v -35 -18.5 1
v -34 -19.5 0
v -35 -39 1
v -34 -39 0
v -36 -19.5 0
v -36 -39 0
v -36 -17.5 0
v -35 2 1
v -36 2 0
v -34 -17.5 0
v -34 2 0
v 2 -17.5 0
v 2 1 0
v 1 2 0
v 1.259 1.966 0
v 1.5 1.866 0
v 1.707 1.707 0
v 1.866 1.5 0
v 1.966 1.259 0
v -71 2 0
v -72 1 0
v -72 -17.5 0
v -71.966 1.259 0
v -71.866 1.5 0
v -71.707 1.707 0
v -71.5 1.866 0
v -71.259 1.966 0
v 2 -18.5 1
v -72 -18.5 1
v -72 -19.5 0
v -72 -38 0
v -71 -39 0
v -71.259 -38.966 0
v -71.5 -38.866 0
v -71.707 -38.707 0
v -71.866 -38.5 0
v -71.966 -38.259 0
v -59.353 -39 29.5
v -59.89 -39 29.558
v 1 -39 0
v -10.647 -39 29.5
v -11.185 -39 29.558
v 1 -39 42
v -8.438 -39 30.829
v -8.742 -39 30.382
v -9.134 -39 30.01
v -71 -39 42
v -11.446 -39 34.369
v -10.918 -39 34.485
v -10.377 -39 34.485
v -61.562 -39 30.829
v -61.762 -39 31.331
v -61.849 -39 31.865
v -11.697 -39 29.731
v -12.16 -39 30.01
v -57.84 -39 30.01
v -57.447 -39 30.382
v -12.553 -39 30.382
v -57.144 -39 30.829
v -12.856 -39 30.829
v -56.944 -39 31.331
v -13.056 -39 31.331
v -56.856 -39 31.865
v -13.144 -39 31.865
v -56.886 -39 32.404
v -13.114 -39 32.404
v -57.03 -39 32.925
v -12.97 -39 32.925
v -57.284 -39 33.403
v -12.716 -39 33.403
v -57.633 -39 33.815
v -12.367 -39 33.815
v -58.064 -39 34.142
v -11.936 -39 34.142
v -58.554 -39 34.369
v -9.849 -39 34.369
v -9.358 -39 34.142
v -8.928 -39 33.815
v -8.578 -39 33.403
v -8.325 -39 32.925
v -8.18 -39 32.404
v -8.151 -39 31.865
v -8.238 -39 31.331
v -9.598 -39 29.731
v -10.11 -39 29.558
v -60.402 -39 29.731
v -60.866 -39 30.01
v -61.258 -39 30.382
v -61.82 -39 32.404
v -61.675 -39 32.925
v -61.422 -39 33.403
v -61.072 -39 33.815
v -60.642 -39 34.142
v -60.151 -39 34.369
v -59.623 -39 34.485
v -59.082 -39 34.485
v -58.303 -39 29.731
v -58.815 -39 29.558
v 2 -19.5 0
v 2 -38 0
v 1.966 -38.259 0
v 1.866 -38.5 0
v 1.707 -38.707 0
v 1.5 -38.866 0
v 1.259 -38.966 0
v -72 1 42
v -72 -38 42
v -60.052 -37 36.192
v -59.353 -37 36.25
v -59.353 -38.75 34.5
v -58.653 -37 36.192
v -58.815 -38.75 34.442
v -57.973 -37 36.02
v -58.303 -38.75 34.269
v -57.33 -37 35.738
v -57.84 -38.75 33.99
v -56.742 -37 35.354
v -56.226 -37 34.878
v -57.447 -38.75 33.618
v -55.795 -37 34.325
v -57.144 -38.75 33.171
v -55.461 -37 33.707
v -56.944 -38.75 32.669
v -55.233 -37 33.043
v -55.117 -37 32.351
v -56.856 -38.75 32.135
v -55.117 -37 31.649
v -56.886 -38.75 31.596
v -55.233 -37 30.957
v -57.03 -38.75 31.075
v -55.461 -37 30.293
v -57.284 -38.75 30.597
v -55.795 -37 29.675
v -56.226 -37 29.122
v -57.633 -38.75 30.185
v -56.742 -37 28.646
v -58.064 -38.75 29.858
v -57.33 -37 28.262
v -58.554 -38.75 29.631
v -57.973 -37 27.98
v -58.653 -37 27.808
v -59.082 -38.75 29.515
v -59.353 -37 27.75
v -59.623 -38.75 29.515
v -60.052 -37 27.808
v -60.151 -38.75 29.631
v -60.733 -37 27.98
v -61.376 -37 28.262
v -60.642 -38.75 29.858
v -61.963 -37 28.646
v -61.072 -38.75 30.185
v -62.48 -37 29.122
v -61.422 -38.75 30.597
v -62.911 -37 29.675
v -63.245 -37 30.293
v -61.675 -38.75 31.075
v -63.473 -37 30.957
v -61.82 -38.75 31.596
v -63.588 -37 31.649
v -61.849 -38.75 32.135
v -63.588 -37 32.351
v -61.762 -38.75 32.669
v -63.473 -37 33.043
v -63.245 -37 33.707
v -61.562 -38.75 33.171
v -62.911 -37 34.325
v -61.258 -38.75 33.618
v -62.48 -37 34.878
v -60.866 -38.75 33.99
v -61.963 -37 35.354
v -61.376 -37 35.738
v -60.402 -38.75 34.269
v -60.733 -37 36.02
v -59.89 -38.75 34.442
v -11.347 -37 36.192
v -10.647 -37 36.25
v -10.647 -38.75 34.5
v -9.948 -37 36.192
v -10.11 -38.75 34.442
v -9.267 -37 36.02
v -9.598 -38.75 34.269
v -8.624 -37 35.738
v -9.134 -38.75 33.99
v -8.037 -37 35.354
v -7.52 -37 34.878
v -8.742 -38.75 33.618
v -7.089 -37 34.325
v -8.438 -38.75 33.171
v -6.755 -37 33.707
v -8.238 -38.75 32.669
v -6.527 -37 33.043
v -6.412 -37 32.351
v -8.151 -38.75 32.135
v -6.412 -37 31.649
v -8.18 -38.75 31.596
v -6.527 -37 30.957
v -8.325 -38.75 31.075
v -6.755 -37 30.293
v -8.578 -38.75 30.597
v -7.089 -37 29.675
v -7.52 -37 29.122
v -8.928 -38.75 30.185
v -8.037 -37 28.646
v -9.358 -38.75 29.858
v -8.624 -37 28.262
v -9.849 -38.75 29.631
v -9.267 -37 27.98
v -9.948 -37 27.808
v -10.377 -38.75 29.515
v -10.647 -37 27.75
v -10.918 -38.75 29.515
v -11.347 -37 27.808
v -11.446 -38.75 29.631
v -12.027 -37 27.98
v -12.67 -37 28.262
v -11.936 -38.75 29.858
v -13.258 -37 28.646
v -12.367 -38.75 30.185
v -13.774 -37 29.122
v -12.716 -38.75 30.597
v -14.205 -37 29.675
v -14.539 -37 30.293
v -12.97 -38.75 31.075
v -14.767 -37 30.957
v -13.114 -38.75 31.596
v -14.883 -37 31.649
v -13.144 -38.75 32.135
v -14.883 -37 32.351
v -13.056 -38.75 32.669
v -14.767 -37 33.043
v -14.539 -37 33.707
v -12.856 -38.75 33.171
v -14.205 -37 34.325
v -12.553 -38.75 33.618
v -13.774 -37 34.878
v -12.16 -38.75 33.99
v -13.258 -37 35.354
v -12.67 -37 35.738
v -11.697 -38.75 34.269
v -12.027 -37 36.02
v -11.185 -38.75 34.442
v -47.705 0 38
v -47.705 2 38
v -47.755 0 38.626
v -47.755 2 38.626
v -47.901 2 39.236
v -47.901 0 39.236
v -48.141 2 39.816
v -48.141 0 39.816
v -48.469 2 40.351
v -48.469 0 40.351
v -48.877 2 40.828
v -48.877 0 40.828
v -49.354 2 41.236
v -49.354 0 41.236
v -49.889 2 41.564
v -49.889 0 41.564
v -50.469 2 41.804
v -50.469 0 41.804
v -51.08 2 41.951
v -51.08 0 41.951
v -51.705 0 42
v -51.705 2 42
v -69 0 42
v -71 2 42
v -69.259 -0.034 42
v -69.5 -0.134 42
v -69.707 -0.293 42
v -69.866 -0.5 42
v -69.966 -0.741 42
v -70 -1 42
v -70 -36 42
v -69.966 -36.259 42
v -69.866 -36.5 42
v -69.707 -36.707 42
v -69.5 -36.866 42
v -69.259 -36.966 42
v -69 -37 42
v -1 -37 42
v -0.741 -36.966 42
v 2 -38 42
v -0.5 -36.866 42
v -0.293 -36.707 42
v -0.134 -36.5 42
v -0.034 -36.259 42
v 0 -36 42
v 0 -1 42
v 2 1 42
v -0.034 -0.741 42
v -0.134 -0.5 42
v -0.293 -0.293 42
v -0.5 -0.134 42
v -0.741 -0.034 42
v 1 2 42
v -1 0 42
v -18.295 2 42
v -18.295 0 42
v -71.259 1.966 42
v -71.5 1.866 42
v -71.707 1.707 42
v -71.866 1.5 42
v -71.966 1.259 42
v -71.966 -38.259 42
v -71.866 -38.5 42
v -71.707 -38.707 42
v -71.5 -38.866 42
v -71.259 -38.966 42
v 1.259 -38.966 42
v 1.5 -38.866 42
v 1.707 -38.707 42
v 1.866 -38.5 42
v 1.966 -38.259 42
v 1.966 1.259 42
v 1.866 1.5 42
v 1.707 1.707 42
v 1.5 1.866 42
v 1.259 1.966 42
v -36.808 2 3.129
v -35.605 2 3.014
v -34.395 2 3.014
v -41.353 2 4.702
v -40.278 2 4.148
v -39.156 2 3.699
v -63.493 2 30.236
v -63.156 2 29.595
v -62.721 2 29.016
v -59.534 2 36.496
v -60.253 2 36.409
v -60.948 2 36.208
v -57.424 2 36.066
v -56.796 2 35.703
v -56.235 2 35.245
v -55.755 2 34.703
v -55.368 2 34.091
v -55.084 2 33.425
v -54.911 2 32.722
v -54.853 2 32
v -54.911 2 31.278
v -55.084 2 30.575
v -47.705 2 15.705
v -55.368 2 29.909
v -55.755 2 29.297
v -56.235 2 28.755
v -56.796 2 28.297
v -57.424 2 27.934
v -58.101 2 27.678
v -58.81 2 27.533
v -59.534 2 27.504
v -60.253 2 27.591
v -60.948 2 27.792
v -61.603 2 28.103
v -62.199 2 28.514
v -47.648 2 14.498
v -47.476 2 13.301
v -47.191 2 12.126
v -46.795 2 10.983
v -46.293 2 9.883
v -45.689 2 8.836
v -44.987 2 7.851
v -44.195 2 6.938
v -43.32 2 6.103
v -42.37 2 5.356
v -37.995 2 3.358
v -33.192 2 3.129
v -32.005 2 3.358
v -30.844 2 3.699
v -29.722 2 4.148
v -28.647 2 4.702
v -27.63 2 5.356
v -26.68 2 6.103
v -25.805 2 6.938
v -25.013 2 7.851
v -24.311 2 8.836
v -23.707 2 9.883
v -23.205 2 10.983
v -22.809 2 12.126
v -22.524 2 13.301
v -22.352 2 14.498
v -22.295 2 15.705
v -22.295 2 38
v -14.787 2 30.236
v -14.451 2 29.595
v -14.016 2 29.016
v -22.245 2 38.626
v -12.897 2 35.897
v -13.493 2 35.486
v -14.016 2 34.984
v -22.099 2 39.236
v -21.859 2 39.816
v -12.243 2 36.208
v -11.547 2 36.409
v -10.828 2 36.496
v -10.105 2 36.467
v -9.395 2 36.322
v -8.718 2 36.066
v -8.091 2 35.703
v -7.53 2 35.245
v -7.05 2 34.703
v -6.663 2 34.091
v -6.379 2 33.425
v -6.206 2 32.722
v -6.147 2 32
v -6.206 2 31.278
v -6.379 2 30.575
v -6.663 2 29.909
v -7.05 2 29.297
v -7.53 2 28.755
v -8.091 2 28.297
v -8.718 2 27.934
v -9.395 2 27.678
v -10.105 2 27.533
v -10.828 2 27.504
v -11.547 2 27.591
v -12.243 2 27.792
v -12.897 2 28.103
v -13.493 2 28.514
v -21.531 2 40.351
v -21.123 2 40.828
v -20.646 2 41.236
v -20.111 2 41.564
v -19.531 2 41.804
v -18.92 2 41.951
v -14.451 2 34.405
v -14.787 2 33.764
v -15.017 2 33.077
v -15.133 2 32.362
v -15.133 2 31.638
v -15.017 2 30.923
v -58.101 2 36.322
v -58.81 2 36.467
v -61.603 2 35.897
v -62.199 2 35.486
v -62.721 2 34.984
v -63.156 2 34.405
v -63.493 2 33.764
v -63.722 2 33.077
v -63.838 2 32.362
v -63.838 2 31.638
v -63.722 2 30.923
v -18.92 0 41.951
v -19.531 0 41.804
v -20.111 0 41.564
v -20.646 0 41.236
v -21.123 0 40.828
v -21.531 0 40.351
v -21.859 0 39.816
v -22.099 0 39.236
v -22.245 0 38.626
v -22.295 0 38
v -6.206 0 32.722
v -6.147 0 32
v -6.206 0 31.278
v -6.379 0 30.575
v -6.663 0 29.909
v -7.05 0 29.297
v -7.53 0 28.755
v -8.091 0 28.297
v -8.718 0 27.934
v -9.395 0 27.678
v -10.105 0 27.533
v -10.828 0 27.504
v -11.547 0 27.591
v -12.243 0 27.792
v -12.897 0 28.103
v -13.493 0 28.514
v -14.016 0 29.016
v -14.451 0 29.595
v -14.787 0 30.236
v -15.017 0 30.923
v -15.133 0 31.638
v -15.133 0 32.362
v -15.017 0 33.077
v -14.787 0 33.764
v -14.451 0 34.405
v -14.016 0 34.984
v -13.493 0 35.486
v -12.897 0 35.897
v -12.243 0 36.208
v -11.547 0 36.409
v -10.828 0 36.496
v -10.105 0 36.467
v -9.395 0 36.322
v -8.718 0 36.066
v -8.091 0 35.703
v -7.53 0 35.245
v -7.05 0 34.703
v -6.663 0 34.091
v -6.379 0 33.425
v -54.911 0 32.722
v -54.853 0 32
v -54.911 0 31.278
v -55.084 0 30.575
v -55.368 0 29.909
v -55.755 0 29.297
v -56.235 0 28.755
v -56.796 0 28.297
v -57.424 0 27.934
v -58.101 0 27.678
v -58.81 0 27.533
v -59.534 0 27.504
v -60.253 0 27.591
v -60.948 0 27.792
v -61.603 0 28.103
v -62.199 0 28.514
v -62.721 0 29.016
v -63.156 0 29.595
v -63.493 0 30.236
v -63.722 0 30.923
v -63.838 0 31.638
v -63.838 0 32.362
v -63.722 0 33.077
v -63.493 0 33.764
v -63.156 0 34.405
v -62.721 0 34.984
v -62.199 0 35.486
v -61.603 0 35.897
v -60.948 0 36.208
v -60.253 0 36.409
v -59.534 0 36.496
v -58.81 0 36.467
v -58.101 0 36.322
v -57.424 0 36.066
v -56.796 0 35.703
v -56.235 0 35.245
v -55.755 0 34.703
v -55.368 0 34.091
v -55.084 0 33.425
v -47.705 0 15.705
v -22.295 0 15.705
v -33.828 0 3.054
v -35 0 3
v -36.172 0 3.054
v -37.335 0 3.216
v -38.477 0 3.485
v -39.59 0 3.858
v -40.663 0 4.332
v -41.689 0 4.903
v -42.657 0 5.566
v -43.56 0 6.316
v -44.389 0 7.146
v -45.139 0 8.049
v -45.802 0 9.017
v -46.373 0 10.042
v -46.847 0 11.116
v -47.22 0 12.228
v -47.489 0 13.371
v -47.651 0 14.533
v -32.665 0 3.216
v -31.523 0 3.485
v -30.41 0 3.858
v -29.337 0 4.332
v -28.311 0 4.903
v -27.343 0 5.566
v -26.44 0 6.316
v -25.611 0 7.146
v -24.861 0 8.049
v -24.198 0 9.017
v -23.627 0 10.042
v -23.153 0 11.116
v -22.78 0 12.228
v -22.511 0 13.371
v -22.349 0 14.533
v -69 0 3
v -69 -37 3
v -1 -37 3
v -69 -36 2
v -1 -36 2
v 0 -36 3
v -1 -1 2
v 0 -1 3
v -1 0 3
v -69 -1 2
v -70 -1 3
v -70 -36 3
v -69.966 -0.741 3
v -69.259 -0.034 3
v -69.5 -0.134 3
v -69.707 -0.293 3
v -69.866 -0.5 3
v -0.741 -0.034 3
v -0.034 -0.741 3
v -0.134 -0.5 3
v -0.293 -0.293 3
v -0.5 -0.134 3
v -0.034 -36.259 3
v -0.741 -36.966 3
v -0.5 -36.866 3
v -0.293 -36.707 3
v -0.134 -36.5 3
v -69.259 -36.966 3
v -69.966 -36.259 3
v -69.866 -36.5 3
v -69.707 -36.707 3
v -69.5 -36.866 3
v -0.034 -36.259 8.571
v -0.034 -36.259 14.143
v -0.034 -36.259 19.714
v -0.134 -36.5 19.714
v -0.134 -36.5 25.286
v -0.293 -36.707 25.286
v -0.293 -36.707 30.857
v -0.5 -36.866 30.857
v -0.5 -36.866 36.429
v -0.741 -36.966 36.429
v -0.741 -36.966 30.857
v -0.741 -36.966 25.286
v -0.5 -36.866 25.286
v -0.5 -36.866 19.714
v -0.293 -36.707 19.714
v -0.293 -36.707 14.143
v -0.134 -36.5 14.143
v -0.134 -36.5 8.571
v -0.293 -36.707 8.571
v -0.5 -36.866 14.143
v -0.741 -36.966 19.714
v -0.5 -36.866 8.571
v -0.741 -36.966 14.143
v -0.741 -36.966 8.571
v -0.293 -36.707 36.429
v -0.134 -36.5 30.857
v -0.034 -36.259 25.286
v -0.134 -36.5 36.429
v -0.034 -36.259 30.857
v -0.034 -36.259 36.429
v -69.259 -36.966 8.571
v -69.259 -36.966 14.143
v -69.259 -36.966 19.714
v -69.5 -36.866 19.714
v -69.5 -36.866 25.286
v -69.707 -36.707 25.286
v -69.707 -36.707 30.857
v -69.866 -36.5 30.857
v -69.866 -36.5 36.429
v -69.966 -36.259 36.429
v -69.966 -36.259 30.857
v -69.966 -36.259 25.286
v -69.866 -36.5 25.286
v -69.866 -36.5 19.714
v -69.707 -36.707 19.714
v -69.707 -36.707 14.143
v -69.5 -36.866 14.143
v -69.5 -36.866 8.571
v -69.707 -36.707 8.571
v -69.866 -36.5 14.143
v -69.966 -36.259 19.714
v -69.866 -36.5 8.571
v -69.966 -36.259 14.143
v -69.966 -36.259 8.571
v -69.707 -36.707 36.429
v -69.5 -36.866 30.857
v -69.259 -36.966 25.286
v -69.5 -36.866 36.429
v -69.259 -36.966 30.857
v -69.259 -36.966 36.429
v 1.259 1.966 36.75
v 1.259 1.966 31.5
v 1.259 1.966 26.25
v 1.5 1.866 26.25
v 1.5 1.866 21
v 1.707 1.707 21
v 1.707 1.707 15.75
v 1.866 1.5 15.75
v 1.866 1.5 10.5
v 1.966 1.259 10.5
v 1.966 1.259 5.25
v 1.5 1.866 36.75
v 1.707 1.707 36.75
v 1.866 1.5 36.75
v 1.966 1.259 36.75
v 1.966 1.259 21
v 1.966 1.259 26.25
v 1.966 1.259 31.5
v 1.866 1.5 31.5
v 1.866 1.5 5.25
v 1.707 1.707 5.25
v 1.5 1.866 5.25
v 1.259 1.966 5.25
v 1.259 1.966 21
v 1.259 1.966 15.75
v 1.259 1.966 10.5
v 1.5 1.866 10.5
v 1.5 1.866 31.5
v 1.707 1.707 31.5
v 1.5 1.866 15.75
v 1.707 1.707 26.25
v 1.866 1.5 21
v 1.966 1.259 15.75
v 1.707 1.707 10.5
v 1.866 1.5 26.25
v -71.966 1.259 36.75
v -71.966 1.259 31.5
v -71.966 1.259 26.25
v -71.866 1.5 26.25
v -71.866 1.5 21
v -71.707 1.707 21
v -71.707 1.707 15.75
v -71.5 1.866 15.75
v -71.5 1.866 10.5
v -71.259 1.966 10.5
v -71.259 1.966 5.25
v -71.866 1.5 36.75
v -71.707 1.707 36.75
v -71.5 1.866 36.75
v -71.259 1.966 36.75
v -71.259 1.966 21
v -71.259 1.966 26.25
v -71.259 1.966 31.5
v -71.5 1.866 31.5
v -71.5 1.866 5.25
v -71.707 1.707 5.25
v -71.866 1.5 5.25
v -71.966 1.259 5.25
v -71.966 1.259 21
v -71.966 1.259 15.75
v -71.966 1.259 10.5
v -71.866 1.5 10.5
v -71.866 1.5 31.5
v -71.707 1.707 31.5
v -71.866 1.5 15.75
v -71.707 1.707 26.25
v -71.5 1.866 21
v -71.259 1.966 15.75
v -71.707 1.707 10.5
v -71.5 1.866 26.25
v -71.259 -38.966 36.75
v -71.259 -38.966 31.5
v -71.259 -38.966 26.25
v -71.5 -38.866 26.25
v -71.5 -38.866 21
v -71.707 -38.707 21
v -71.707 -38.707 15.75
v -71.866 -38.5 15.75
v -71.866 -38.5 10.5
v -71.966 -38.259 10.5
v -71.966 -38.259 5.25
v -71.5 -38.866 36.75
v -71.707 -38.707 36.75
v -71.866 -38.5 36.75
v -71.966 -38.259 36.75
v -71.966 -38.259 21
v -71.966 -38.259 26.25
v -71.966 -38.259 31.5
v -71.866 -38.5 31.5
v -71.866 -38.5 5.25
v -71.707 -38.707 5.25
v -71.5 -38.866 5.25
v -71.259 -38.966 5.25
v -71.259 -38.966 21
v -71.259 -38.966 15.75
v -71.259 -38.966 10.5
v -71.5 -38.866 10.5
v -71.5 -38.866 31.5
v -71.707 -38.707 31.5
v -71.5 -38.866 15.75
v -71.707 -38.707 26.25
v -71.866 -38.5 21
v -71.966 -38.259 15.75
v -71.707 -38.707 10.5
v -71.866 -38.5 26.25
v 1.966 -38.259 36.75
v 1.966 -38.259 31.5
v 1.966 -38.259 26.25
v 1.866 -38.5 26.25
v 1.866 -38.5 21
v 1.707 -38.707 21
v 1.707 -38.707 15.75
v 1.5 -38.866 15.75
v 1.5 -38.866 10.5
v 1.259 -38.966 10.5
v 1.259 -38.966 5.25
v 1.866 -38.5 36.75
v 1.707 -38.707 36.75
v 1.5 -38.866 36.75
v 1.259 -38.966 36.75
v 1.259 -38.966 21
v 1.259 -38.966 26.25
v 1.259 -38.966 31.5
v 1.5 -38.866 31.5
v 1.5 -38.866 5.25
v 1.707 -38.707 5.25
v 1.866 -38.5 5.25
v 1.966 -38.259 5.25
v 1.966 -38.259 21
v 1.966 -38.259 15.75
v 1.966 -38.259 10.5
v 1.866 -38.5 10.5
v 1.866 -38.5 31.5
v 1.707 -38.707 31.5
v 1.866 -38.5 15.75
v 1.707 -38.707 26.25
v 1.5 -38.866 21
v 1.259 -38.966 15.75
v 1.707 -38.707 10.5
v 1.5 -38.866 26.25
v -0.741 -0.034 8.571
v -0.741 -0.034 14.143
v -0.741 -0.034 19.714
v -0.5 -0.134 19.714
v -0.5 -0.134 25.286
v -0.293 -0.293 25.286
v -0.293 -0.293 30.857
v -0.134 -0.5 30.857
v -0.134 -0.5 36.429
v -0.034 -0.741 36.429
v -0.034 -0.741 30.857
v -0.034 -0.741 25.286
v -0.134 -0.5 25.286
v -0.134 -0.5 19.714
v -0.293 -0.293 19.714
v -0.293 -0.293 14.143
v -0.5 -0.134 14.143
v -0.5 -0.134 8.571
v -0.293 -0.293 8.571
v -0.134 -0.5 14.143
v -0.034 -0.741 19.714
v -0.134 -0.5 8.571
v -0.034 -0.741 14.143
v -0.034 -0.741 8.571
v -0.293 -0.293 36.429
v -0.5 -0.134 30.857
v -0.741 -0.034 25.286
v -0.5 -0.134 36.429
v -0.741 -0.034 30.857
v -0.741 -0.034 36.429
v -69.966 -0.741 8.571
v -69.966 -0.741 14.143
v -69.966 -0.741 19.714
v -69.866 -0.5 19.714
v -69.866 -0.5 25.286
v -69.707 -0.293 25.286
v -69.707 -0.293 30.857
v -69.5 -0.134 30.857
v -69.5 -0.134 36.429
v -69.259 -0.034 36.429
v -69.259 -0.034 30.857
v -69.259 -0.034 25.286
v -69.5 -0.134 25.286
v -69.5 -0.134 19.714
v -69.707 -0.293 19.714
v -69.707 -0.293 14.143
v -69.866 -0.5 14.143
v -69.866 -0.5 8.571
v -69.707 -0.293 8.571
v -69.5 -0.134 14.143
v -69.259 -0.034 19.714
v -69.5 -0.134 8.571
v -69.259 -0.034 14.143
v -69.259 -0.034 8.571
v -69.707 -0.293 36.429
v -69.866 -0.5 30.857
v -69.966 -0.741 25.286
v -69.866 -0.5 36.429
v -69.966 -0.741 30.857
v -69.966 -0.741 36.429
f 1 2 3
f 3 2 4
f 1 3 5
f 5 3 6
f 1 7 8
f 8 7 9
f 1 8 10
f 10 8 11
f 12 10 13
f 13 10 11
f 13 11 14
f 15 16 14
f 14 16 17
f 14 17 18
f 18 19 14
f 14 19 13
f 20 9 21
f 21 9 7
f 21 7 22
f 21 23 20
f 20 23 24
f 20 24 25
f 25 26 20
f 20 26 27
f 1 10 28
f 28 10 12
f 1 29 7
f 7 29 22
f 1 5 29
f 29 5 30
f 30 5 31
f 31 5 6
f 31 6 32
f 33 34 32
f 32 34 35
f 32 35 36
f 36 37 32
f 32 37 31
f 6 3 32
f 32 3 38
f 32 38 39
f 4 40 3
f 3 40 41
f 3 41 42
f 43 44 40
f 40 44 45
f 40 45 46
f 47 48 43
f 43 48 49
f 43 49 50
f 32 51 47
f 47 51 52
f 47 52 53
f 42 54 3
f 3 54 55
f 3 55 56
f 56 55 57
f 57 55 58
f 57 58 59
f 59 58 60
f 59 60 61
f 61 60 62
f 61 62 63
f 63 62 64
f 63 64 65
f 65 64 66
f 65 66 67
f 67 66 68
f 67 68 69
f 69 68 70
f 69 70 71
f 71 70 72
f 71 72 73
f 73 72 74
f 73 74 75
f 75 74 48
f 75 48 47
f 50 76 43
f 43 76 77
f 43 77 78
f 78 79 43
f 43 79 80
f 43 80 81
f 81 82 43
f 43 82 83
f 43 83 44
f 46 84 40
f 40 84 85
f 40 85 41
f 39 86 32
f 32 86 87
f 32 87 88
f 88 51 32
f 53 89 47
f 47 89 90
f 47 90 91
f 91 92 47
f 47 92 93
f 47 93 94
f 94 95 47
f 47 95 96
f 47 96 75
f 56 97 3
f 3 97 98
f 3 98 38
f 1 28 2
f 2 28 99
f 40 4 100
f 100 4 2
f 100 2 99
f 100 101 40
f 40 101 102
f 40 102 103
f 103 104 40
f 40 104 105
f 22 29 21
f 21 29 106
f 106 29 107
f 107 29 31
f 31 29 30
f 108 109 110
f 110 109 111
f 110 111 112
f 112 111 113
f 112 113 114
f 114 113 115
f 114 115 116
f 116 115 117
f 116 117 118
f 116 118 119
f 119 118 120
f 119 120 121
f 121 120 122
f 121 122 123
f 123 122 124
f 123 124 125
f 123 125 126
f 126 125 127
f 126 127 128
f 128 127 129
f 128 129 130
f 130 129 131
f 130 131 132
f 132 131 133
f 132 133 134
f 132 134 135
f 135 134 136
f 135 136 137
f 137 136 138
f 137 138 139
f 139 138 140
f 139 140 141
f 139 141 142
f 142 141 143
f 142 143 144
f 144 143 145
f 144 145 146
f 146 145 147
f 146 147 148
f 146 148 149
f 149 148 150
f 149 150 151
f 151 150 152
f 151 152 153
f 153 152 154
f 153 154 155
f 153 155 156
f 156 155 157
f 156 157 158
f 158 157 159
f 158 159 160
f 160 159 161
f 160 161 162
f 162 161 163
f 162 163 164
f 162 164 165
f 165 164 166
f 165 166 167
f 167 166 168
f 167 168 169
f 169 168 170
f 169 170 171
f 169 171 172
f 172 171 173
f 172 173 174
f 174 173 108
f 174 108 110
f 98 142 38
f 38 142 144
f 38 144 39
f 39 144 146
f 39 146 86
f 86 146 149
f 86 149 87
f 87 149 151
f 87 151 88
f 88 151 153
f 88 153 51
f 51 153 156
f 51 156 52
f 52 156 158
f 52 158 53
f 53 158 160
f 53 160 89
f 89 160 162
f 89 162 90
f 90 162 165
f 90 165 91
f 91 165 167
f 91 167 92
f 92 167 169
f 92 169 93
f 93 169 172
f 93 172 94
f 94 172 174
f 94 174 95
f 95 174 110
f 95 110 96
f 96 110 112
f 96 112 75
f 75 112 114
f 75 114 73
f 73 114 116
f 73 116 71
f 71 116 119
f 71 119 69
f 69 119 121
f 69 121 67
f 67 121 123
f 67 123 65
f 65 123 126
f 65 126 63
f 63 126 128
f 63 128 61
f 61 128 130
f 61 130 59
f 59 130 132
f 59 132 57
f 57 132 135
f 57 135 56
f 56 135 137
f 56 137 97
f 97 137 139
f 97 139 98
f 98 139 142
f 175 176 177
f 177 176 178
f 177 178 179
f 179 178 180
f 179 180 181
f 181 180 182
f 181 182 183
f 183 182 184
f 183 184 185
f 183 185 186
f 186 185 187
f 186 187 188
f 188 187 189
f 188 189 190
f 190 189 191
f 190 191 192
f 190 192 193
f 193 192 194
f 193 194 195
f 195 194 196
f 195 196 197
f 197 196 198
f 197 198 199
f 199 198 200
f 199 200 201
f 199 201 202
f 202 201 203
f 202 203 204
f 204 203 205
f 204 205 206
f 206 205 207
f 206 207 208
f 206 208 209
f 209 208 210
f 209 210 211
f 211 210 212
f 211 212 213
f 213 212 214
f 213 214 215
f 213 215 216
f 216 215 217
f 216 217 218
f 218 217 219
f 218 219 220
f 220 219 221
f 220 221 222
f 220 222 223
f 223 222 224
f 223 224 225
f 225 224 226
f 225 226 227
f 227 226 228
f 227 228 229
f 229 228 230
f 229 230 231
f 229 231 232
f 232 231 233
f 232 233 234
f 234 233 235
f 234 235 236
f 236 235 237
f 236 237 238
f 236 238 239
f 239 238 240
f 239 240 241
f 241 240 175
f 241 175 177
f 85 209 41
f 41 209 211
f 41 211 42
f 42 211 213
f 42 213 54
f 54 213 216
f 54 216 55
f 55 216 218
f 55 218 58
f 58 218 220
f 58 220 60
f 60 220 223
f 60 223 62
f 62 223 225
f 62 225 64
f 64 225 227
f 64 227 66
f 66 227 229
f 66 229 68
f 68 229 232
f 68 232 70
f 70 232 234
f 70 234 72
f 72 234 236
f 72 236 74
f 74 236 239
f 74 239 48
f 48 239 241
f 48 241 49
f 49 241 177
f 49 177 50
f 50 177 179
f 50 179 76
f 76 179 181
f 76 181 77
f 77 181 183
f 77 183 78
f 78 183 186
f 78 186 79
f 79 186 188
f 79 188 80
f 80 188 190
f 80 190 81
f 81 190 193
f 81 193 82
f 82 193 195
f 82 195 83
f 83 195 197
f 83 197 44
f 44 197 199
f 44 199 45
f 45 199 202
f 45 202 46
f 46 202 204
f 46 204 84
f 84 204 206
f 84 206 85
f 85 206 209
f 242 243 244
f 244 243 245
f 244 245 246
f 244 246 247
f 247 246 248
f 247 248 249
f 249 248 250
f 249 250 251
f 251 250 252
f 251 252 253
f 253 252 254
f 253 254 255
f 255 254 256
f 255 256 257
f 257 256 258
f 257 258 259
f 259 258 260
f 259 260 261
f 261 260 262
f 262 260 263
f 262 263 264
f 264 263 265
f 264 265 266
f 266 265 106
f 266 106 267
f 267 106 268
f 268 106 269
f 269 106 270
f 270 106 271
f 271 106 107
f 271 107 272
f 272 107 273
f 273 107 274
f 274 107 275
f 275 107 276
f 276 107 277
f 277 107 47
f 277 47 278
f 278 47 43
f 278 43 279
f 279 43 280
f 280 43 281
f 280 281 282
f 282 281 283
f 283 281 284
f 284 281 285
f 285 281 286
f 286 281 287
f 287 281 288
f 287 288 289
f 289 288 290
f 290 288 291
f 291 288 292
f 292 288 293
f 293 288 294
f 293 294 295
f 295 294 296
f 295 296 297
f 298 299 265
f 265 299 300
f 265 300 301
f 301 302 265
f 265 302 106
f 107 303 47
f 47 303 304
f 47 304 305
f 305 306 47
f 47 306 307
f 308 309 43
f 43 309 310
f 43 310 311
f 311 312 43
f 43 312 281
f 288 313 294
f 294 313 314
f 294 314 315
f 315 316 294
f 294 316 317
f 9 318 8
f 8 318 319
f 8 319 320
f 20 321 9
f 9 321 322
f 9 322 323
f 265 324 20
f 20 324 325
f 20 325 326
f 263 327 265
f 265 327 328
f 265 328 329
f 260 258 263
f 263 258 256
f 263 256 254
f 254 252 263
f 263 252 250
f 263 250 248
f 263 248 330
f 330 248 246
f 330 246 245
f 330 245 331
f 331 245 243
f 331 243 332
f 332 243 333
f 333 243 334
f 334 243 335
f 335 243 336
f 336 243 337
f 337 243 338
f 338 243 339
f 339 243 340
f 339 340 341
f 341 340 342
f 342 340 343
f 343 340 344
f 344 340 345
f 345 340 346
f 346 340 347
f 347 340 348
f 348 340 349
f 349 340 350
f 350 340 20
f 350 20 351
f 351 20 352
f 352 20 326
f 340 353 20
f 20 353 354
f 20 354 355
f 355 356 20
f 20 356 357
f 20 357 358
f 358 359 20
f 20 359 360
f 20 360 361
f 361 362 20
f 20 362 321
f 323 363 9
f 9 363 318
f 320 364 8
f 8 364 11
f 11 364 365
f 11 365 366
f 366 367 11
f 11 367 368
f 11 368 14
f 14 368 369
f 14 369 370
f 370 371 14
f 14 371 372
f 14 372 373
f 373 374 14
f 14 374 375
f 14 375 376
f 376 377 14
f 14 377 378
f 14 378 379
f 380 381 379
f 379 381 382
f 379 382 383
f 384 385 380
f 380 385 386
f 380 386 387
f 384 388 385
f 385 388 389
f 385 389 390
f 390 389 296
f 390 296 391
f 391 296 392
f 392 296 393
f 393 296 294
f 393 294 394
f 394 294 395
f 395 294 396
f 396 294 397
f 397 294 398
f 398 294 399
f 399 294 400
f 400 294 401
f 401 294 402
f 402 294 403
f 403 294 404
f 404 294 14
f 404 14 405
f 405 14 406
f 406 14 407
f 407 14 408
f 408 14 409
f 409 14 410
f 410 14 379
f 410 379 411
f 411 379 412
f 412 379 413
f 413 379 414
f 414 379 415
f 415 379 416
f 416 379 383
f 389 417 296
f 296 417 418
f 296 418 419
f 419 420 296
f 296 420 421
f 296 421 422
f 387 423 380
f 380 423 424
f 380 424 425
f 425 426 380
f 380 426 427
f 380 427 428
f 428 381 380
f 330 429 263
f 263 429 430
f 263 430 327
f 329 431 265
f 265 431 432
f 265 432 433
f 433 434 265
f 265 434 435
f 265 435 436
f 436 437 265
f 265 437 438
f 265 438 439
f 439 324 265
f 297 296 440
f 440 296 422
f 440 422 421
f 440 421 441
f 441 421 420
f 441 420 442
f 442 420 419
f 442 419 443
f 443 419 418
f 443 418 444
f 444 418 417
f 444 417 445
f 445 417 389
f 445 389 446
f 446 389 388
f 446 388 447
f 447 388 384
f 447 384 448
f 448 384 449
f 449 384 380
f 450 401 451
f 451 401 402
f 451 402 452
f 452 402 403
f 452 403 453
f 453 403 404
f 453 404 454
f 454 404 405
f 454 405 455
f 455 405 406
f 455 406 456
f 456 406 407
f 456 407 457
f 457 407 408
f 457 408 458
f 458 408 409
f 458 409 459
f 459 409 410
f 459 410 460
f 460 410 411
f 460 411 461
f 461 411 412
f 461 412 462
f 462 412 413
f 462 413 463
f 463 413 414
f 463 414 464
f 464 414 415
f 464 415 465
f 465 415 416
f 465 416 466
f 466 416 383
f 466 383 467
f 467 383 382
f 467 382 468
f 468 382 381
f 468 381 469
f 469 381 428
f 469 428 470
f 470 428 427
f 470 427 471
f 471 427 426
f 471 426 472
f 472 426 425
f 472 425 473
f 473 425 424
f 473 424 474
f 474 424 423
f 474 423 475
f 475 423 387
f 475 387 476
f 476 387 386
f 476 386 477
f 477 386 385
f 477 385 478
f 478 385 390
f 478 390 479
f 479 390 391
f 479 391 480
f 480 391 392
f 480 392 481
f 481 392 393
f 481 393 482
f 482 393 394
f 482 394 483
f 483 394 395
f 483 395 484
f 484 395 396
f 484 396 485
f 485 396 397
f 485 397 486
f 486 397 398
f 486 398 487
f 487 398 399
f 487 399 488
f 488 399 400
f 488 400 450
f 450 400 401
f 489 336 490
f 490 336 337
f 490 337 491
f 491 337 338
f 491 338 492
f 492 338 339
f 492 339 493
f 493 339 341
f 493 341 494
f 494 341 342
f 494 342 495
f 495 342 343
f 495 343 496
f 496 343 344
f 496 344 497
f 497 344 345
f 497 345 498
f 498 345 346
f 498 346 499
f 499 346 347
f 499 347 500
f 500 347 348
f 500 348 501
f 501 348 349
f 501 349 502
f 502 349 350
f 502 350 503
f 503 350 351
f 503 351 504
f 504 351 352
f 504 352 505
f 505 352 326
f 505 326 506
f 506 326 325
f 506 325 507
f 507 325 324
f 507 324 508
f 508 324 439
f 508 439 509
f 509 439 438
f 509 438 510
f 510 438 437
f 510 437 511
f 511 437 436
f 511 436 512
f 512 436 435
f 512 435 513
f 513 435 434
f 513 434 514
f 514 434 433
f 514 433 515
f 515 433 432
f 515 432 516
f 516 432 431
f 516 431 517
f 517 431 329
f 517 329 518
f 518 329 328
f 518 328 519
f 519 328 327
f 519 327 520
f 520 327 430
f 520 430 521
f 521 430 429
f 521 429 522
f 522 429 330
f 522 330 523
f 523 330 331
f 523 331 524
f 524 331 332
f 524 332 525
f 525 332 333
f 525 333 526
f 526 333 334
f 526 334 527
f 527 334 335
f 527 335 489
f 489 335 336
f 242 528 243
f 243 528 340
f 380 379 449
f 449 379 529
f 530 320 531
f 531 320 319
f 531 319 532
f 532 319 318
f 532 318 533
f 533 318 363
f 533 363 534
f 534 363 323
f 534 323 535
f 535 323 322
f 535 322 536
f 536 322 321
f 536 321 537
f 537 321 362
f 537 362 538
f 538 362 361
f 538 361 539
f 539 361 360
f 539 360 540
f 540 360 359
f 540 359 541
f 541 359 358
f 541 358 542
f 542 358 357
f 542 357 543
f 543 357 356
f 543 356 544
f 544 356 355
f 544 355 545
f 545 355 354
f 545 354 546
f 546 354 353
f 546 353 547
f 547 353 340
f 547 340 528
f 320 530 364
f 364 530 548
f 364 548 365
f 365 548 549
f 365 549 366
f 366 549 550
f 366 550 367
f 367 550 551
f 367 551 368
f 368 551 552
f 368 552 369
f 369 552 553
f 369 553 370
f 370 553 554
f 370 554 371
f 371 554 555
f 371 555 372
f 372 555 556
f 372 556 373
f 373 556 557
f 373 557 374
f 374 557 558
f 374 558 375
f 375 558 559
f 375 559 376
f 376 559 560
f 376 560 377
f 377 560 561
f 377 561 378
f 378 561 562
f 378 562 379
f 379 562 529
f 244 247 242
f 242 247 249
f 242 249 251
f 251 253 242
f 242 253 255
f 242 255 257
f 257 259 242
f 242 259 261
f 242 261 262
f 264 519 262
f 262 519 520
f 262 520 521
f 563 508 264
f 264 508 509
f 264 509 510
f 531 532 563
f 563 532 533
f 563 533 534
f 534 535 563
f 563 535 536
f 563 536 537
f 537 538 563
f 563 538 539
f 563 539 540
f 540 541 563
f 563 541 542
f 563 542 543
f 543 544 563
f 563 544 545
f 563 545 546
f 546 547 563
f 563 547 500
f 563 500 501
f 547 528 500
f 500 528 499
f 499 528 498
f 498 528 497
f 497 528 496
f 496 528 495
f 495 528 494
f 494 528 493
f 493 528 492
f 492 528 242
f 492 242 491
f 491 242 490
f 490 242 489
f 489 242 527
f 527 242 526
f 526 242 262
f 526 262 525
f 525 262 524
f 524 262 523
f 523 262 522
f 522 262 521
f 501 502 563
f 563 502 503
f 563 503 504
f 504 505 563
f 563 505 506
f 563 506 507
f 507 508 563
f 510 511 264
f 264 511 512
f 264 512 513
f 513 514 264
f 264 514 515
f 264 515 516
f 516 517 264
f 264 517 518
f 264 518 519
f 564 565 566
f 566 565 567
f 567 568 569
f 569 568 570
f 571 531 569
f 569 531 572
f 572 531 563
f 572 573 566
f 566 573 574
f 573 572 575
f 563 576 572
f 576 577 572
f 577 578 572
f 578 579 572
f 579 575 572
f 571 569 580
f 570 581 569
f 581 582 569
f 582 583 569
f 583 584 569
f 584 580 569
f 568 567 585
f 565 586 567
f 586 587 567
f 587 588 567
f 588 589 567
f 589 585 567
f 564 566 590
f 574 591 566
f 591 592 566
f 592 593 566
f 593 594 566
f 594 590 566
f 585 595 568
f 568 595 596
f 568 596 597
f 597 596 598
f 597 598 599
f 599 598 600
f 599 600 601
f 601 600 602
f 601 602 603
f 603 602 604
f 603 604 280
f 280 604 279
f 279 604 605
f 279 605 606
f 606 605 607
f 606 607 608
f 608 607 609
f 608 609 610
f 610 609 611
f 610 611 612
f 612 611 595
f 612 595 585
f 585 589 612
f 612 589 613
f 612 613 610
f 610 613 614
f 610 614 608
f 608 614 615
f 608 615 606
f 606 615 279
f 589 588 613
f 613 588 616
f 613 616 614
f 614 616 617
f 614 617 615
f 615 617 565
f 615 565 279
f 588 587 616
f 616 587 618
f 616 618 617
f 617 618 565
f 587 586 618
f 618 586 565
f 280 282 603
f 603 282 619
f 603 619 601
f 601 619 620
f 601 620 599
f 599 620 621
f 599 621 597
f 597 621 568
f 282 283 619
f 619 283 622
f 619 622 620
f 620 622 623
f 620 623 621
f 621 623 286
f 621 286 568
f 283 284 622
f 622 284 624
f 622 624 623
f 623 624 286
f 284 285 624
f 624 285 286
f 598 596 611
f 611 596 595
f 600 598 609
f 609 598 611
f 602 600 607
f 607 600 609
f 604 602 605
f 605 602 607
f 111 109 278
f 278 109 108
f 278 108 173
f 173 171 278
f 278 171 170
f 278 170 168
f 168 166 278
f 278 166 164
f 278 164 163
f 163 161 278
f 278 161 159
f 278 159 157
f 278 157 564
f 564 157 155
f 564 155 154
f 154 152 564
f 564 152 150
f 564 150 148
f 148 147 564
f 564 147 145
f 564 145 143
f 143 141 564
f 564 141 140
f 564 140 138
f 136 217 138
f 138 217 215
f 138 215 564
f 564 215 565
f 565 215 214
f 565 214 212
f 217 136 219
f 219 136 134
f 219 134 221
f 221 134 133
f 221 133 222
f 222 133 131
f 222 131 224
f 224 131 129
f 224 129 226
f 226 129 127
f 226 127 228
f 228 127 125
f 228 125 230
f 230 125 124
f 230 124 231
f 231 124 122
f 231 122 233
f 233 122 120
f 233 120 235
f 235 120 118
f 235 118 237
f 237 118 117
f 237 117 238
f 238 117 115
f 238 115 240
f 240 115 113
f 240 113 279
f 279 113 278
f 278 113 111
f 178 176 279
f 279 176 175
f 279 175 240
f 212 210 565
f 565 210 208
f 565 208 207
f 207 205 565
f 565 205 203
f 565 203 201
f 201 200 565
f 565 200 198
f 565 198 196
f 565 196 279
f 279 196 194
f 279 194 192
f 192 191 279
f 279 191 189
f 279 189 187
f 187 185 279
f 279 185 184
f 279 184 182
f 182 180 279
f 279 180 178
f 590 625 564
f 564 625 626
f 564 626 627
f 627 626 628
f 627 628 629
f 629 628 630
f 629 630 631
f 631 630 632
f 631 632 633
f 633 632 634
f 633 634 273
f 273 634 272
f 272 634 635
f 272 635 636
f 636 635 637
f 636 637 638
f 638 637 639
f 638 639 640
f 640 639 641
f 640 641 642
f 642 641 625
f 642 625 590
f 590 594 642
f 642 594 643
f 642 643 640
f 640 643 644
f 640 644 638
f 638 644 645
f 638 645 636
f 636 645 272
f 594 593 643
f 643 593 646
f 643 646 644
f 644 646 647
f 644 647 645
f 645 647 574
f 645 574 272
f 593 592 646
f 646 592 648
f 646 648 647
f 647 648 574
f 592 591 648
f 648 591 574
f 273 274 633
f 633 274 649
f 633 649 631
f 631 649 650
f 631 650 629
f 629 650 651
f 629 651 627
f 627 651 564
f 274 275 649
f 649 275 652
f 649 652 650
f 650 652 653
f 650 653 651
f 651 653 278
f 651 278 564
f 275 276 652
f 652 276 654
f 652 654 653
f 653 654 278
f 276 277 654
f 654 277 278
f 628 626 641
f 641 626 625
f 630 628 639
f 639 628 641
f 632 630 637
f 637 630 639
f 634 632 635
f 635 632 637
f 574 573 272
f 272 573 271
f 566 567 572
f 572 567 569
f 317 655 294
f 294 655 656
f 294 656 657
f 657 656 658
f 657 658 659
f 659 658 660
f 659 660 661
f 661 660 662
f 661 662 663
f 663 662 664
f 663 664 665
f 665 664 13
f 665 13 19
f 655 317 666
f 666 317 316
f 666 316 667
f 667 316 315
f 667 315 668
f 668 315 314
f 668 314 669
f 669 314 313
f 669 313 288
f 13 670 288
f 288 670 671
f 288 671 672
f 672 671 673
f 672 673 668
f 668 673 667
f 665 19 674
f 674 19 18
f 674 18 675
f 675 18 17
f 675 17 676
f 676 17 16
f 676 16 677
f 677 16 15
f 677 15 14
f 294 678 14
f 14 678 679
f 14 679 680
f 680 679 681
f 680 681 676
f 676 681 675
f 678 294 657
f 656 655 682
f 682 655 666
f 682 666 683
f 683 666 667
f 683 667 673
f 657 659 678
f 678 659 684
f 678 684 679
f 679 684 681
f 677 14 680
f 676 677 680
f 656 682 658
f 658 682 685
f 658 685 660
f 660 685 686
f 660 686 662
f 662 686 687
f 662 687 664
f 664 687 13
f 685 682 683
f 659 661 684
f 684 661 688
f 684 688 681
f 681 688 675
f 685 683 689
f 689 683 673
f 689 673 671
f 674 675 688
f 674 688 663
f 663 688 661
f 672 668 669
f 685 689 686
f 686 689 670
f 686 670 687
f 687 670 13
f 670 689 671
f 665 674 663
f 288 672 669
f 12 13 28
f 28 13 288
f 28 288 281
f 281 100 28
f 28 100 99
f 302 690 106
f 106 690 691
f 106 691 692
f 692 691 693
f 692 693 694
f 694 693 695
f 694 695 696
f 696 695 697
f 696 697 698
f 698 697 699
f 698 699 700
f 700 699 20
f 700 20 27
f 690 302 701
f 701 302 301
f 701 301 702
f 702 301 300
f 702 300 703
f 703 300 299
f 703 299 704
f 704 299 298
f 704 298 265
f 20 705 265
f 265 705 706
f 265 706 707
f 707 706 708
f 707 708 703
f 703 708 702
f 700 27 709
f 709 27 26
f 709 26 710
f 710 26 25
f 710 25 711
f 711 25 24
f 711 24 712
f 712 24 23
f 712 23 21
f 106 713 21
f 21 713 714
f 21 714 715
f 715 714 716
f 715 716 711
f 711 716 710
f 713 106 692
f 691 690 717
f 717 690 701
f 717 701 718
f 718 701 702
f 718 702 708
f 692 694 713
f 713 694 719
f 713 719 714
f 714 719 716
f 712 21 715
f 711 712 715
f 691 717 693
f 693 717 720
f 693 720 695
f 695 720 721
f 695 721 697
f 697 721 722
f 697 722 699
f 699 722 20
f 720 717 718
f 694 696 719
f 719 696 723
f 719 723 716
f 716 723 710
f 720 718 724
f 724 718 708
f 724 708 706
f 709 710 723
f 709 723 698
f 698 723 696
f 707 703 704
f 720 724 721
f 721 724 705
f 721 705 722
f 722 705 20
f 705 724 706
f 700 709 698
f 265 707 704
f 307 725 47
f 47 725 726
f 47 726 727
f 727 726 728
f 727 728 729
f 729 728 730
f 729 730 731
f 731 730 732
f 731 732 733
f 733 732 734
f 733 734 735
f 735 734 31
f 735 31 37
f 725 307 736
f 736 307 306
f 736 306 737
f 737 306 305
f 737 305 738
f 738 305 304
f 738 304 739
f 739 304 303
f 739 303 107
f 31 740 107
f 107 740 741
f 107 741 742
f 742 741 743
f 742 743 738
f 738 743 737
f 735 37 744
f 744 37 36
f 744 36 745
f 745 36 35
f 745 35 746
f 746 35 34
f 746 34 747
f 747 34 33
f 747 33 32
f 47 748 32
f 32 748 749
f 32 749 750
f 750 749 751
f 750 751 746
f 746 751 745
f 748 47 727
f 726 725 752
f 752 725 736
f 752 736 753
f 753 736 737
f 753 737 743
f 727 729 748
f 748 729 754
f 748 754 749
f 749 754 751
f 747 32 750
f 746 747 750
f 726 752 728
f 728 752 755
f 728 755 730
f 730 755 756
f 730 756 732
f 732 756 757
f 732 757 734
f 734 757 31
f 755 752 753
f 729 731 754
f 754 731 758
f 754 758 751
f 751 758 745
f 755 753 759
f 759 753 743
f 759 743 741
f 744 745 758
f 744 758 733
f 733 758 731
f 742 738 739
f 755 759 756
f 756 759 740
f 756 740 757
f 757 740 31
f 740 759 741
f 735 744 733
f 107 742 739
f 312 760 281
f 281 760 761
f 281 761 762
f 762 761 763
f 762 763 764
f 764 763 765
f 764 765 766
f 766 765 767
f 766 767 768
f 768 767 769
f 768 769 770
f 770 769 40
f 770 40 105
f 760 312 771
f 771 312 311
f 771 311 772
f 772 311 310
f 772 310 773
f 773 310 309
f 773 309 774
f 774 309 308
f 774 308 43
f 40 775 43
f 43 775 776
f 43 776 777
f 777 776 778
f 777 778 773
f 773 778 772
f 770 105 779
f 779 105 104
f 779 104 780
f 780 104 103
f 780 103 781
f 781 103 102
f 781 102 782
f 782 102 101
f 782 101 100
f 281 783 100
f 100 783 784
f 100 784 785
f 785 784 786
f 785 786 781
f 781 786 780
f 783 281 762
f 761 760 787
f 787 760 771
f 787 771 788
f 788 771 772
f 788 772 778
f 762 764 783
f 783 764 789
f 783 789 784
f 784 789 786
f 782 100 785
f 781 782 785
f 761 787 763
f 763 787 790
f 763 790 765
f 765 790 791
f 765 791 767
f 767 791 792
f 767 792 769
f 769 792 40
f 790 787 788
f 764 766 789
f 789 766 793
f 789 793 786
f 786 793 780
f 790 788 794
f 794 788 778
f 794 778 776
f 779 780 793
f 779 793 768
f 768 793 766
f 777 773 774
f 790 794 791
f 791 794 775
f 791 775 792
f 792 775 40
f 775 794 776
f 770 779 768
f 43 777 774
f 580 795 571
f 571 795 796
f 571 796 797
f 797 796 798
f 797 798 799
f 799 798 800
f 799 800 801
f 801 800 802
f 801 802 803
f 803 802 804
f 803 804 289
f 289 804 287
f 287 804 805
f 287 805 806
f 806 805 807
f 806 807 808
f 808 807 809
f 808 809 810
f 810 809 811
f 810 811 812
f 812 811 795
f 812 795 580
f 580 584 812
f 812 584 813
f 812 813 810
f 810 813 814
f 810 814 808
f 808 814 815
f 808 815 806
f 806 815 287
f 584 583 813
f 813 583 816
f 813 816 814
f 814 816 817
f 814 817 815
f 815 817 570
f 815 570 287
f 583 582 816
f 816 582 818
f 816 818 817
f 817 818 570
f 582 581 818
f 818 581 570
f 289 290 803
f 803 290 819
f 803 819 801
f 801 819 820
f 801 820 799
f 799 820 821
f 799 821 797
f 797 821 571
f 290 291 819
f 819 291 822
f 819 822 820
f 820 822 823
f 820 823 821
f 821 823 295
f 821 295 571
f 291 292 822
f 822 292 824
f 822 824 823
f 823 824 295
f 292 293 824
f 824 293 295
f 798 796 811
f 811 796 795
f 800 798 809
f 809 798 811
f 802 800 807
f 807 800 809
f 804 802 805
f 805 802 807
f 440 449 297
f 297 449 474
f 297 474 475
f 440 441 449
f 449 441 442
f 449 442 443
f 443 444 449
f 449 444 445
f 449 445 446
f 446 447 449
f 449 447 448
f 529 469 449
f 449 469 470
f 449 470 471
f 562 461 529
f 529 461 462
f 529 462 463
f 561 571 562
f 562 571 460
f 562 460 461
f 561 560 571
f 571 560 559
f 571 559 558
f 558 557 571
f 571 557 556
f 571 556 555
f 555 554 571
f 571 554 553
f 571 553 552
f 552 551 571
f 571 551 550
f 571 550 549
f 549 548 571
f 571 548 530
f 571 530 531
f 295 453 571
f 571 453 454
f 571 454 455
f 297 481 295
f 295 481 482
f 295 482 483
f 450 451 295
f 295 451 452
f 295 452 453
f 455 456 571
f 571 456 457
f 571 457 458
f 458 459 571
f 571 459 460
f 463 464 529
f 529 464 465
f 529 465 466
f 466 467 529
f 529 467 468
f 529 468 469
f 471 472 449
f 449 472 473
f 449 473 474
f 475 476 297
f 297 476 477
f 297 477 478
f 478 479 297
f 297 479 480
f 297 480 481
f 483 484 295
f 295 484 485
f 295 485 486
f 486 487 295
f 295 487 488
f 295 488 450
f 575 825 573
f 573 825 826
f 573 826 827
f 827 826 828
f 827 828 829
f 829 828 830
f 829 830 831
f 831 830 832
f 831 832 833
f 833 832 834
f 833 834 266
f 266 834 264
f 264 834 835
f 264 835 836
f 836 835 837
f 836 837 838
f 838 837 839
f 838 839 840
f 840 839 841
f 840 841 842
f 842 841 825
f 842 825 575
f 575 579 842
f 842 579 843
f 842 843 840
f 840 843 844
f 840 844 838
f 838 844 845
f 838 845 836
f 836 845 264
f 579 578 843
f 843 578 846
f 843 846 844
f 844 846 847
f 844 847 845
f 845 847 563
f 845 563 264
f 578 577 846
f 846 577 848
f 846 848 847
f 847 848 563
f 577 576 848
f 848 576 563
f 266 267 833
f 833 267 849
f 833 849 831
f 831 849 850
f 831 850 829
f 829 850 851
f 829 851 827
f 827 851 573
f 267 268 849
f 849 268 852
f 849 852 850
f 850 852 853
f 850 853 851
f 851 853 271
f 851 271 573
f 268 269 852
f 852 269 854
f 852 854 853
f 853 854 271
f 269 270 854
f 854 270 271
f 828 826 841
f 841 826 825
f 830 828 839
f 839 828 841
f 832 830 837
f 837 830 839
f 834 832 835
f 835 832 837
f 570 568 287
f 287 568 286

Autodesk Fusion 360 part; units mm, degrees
sketch "Sketch1" plane through (0, 0, 0) normal (0, 0, 1) x (1, 0, 0)
  line L0 (0, 0) -> (-70, 0)
  line L1 (-70, 0) -> (-70, -37)
  line L2 (-70, -37) -> (0, -37)
  line L3 (0, -37) -> (0, 0)
  line L4 (2, 2) -> (-72, 2)
  line L5 (-72, 2) -> (-72, -39)
  line L6 (-72, -39) -> (2, -39)
  line L7 (2, -39) -> (2, 2)
  dimension "d1" = 37
  dimension "d2" = 70
  dimension "d3" = 2
extrude "Extrude1" add sketch "Sketch1" along normal blind 42
extrude "Extrude2" add sketch "Sketch1" along normal blind 2 contours L0 L1 L2 L3
fillet "Fillet1" radius 1 4 edges at (0, -37, 22) (-70, -37, 22) (-70, 0, 22) (0, 0, 22)
fillet "Fillet2" radius 1 4 edges at (2, -39, 21) (-72, -39, 21) (-72, 2, 21) (2, 2, 21)
chamfer "Chamfer1" distance 1 angle 45 8 edges at (-70, -18.5, 2) (-69.7071, -0.2929, 2) (-35, 0, 2) (-0.2929, -0.2929, 2) (0, -18.5, 2) (-0.2929, -36.7071, 2) (-35, -37, 2) (-69.7071, -36.7071, 2)
sketch "Sketch2" plane through (0, 2, 0) normal (0, 1, 0) x (-1, 0, 0)
  line L0 (-1, 42) -> (-1, 0)
  line L1 (-1, 0) -> (71, 0)
  line L2 (71, 0) -> (71, 42)
  line L3 (71, 42) -> (-1, 42)
  line L4 (35, 42) -> (35, 0) construction
  line L5 (22.2945, 42) -> (22.2945, 15.7055)
  line L6 (47.7055, 42) -> (47.7055, 15.7055)
  arc A0 (22.2945, 15.7055) -> (47.7055, 15.7055) centre (35, 15.7055) ccw
  circle A1 centre (10.6473, 32) radius 4.5
  circle A2 centre (59.3527, 32) radius 4.5
  line L7 (-1, 32) -> (22.2945, 32) construction
  dimension "d13" = 3
  dimension "d14" = 9
  dimension "d15" = 10
extrude "Extrude3" cut sketch "Sketch2" against normal up to surface (2 mm away) contours L3 L5 L6 A0 | A1 | A2
fillet "Fillet3" radius 4 2 edges at (-22.2945, 1, 42) (-47.7055, 1, 42)
sketch "projecting holes for attachment" plane through (0, -37, 0) normal (0, 1, 0) x (-1, 0, 0)
  line L0 (1, 3) -> (69, 3)
  line L1 (69, 3) -> (69, 42)
  line L2 (69, 42) -> (1, 42)
  line L3 (1, 42) -> (1, 3)
  point P0 (10.6473, 32)
  point P1 (59.3527, 32)
hole "Hole1" at (-59.3527, -37, 32) at (-10.6473, -37, 32) direction (0, -1, 0) diameter 5 depth 11 tip angle 118 countersink diameter 8.5 countersink angle 90
sketch "Splitting the base for printability" plane through (2, 0, 0) normal (1, 0, 0) x (0, 1, 0)
  line L0 (1, 0) -> (1, 42)
  line L1 (1, 42) -> (-38, 42)
  line L2 (-38, 42) -> (-38, 0)
  line L3 (-38, 0) -> (1, 0)
  line L4 (-38, 0) -> (1, 0)
  line L5 (-18.5, 0) -> (-18.5, 1) construction
  line L6 (-18.5, 1) -> (-19.5, 0)
  line L7 (-18.5, 1) -> (-17.5, 0)
  dimension "d26" = 1
  dimension "d27" = 90
extrude "Extrude4" cut sketch "Splitting the base for printability" against normal up to surface (74 mm away) contours L3 L4 L6 L7
sketch "Splitting the base for printability 2" plane through (0, -39, 0) normal (0, -1, 0) x (1, 0, 0)
  circle A0 centre (-59.3527, 32) radius 2.5
  circle A1 centre (-10.6473, 32) radius 2.5
  line L0 (-71, 42) -> (-71, 0)
  line L1 (-71, 0) -> (1, 0)
  line L2 (1, 0) -> (1, 42)
  line L3 (1, 42) -> (-71, 42)
  line L4 (-35, 0) -> (-35, 1) construction
  line L5 (-35, 1) -> (-34, 0)
  line L6 (-35, 1) -> (-36, 0)
  dimension "d30" = 1
  dimension "d31" = 90
extrude "Extrude5" cut sketch "Splitting the base for printability 2" against normal blind 41 contours L1 L5 L6
